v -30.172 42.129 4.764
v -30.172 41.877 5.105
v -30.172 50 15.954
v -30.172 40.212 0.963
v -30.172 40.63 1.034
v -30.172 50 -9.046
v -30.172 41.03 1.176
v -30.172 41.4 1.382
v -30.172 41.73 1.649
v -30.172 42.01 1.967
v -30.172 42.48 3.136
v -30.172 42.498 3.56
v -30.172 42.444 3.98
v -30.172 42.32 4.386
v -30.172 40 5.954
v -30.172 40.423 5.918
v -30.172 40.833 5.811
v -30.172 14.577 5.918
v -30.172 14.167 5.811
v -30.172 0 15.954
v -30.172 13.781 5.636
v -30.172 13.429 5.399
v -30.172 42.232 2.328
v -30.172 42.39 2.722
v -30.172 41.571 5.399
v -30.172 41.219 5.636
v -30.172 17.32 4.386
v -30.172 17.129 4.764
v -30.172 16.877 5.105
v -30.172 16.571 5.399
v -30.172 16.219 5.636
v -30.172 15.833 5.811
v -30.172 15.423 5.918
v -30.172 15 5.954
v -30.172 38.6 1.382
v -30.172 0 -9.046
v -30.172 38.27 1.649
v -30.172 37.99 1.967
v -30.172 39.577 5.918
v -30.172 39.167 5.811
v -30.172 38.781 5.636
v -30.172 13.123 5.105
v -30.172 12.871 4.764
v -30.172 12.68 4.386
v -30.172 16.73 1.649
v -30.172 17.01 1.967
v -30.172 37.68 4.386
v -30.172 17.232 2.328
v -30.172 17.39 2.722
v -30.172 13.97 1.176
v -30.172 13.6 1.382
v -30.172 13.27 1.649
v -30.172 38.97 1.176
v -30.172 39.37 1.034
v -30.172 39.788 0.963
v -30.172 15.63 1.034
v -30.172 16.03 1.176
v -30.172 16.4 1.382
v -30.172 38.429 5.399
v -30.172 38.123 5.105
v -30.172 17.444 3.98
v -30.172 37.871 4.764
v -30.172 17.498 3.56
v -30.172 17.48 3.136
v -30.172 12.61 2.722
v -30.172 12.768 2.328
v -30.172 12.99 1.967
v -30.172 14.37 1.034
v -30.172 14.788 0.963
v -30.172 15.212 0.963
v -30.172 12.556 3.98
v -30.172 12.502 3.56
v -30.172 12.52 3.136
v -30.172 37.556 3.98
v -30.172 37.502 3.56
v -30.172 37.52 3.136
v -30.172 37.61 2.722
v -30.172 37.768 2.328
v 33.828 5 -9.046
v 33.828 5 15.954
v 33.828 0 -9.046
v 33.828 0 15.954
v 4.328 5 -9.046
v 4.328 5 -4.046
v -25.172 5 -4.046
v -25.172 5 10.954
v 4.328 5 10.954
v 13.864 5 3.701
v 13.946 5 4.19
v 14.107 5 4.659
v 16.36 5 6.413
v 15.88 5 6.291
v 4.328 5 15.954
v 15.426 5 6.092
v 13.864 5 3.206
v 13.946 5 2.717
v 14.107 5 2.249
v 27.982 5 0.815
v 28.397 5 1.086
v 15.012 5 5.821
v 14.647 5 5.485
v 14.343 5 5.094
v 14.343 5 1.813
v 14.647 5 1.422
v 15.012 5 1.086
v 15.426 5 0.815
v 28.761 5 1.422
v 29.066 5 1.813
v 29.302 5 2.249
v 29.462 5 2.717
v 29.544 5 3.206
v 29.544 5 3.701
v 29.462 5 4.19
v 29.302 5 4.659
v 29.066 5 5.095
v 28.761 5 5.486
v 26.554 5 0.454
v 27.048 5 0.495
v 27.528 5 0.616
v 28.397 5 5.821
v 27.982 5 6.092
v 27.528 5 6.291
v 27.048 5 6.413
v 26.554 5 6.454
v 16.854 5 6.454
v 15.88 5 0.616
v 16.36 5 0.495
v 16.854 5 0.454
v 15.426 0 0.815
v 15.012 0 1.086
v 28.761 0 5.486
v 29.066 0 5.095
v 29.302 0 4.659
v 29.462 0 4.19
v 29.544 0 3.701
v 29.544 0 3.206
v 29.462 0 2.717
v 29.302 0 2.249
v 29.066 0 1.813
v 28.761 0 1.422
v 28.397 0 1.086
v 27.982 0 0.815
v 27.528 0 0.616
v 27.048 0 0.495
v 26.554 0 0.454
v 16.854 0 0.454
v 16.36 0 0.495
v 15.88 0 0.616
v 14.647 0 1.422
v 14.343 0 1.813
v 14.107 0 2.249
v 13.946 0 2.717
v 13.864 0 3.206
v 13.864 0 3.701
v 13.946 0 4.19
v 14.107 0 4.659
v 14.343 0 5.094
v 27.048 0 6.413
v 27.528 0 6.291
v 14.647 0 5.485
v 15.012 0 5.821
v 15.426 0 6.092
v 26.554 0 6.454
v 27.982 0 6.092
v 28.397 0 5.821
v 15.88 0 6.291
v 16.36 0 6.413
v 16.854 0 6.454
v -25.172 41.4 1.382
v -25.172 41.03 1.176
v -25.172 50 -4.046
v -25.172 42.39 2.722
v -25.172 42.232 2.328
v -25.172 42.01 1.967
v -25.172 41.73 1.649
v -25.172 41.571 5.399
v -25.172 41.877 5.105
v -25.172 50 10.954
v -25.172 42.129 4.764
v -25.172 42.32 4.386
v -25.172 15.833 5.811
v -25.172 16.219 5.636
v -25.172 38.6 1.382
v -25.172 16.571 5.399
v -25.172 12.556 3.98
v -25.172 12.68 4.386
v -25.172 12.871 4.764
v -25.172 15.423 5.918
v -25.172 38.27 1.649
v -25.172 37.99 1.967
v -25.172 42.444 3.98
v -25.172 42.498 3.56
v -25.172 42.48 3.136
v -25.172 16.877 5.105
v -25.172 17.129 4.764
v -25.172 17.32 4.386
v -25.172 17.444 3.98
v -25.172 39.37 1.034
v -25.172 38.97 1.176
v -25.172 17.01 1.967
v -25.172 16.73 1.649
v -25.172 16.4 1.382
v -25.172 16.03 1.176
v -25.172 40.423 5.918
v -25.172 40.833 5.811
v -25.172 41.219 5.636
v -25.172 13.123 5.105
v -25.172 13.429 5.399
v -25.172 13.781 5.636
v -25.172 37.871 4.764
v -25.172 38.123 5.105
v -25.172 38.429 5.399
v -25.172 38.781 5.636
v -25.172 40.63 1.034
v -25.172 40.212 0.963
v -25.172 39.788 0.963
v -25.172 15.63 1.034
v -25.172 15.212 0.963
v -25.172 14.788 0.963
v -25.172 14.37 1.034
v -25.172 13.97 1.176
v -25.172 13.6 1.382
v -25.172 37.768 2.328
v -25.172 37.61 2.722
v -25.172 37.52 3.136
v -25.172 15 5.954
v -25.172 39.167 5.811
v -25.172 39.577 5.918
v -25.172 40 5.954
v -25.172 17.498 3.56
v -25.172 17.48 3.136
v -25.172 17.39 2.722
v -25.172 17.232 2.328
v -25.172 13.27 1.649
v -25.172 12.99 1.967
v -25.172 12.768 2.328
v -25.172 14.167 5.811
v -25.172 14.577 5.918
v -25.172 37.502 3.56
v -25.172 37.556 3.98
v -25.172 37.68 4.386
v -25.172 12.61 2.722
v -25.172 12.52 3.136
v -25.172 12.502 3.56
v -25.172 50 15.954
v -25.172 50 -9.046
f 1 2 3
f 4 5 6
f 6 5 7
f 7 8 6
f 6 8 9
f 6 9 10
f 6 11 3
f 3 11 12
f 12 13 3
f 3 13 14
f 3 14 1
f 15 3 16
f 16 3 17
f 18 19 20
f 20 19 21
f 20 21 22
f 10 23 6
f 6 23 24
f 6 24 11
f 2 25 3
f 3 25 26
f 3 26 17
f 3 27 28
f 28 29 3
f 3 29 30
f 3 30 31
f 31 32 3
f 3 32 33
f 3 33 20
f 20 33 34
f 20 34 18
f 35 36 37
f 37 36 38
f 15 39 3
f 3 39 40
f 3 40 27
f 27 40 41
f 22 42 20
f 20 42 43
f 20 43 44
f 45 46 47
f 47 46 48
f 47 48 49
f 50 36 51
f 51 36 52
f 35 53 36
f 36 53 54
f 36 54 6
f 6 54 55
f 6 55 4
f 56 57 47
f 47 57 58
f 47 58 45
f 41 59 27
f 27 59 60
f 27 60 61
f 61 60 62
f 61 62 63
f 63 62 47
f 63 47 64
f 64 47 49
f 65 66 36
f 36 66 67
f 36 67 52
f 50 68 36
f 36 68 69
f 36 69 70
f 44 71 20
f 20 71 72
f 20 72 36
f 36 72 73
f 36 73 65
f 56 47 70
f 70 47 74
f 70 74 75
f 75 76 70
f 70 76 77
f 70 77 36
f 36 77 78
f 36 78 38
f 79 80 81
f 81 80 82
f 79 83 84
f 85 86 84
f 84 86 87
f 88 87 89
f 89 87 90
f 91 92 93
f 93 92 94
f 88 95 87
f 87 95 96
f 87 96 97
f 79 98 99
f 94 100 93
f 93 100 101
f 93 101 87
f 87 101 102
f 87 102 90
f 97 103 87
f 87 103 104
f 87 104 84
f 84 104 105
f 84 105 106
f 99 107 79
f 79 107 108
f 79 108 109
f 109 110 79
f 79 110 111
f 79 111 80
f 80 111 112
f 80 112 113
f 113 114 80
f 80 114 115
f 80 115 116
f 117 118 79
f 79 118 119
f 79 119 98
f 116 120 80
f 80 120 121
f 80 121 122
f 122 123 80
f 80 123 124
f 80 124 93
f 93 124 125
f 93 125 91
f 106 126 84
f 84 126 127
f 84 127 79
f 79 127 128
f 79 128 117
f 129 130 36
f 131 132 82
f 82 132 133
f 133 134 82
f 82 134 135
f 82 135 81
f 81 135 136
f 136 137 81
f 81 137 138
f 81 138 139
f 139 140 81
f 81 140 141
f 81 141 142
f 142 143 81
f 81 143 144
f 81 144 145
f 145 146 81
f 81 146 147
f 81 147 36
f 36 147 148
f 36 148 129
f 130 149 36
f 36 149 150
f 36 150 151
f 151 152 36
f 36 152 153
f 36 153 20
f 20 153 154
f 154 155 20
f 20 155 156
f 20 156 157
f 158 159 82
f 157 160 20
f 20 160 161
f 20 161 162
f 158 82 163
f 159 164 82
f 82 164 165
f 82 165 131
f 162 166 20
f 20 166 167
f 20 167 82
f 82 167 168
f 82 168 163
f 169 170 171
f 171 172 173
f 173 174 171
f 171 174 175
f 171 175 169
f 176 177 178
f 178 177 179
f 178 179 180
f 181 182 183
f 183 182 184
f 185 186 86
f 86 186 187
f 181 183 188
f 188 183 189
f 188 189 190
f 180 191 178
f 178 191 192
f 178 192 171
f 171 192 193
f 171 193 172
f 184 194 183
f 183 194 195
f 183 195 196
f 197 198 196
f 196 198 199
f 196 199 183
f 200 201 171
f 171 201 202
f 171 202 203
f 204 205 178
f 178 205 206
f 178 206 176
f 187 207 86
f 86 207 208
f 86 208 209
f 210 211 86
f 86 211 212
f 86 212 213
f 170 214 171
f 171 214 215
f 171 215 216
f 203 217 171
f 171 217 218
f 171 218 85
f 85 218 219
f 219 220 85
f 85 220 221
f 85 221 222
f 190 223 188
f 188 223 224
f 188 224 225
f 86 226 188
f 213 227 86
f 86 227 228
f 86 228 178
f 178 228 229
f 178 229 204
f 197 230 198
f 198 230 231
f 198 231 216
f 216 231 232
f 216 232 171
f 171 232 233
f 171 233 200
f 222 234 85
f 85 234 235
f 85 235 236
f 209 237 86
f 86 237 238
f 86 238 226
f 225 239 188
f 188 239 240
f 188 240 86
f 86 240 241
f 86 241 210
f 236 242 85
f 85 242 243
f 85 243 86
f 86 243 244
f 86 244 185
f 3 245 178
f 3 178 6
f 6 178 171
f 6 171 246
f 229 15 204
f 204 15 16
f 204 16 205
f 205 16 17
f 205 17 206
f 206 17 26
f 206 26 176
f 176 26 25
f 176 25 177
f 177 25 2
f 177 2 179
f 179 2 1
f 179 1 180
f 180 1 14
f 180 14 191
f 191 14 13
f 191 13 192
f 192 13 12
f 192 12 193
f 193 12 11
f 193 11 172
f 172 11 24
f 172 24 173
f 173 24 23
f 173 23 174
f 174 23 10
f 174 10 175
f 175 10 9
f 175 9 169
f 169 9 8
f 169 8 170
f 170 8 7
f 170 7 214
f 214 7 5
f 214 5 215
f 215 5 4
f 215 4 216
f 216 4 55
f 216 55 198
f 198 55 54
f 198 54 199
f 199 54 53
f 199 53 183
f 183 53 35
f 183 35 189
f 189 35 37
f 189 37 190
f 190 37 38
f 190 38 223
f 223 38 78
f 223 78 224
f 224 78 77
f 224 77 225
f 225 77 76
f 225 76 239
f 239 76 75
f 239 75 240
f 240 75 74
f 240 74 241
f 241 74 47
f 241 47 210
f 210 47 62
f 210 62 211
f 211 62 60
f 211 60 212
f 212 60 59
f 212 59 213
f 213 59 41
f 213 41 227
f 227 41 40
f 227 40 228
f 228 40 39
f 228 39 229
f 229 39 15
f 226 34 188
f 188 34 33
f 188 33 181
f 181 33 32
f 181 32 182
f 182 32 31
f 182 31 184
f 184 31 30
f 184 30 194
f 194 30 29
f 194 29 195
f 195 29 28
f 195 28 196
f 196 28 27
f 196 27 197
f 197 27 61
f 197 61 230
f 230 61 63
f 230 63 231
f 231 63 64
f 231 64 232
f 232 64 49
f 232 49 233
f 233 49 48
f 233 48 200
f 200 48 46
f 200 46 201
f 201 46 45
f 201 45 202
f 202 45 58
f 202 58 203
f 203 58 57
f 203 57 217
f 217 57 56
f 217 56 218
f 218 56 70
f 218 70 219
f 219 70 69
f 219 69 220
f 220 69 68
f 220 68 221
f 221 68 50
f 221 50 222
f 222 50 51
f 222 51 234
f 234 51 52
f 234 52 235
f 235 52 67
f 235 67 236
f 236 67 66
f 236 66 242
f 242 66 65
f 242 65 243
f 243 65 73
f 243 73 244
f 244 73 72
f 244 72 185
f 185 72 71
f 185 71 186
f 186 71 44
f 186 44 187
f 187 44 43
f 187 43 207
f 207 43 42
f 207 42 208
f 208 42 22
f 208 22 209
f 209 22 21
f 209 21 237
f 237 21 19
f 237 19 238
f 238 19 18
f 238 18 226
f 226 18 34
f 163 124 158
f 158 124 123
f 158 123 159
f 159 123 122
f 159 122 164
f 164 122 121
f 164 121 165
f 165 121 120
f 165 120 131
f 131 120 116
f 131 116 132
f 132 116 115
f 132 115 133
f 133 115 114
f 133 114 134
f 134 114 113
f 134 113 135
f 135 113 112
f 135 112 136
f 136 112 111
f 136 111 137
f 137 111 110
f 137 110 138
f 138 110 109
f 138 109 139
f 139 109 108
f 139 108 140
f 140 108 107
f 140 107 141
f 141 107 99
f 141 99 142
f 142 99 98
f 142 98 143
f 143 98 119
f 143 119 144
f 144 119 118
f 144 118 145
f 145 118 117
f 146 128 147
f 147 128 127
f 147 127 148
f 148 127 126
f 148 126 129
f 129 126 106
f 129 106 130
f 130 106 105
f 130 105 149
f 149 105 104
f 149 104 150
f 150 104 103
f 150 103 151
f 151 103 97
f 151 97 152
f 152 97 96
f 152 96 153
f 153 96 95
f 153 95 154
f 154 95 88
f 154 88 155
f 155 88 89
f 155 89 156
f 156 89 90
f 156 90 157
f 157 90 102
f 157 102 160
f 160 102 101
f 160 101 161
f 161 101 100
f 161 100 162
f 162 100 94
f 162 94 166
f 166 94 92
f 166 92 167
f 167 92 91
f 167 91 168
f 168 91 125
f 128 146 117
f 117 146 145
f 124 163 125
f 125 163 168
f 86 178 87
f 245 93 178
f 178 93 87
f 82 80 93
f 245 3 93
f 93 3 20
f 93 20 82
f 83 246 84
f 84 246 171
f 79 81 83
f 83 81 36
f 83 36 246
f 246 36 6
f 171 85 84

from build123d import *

# Parameters (mm, degrees)
SKETCH1_W                 = 64
SKETCH1_H                 = 15
BOSS_EXTRUDE1_DEPTH       = 5
SKETCH3_W                 = 5
SKETCH3_H                 = 15
BOSS_EXTRUDE2_DEPTH       = 45
F_5_0MM_DOWEL_HOLE1_D     = 5
F_6_0MM_DOWEL_SLOT1_DEPTH = 5
BOSS_EXTRUDE3_DEPTH       = 5
BOSS_EXTRUDE4_DEPTH       = 5


# Read off the part's stored shape, not the designer's step: Ø6.0mm Dowel Slot1
with BuildPart() as part:
    # Sketch1 → Boss-Extrude1 (new body)
    with BuildSketch(Plane(origin=(0, 0, 0), x_dir=(1, 0, 0), z_dir=(0, 1, 0))):
        with Locations((1.827783478, -3.453636176)):
            Rectangle(SKETCH1_W, SKETCH1_H)
    extrude(amount=BOSS_EXTRUDE1_DEPTH)

    # Sketch3 → Boss-Extrude2 (add)
    with BuildSketch(Plane(origin=(0, 5, 0), x_dir=(1, 0, 0), z_dir=(0, 1, 0))):
        with Locations((-27.672216522, -3.453636176)):
            Rectangle(SKETCH3_W, SKETCH3_H)
    extrude(amount=BOSS_EXTRUDE2_DEPTH)

    # Ø5.0mm Dowel Hole1 (through all)
    with Locations(Plane.ZY.offset(30.172216522)):
        with Locations((3.453636176, 15), (3.453636176, 40)):
            Hole(F_5_0MM_DOWEL_HOLE1_D / 2)

    # Ø6.0mm Dowel Slot1 outline → Ø6.0mm Dowel Slot1 (cut)
    with BuildSketch(Plane(origin=(0, 0, 0), x_dir=(1, 0, 0), z_dir=(0, 1, 0))):
        with BuildLine():
            Line((16.854220924, -6.453652479), (26.554220923, -6.453705194))
            ThreePointArc((26.554220923, -6.453705194), (29.554237227, -3.453721498), (26.554253531, -0.453705194))
            Line((26.554253531, -0.453705194), (16.854253531, -0.453652479))
            ThreePointArc((16.854253531, -0.453652479), (13.854237227, -3.453636175), (16.854220924, -6.453652479))
        make_face()
    extrude(amount=F_6_0MM_DOWEL_SLOT1_DEPTH, mode=Mode.SUBTRACT)

    # Sketch10 → Boss-Extrude3 (add)
    with BuildSketch(Plane.XY.offset(10.953636176)):
        Polygon((-25.172216522, 50), (4.327783478, 5), (33.827783478, 5), (33.827783478, 0), (-30.172216522, 0), (-30.172216522, 50), align=None)
    extrude(amount=BOSS_EXTRUDE3_DEPTH)

    # Sketch11 → Boss-Extrude4 (add)
    with BuildSketch(Plane(origin=(0, 0, -4.046363824), x_dir=(-1, 0, 0), z_dir=(0, 0, -1))):
        Polygon((25.172216522, 50), (30.172216522, 50), (30.172216522, 0), (-33.827783478, 0), (-33.827783478, 5), (-4.327783478, 5), align=None)
    extrude(amount=BOSS_EXTRUDE4_DEPTH)


solid = part.part
